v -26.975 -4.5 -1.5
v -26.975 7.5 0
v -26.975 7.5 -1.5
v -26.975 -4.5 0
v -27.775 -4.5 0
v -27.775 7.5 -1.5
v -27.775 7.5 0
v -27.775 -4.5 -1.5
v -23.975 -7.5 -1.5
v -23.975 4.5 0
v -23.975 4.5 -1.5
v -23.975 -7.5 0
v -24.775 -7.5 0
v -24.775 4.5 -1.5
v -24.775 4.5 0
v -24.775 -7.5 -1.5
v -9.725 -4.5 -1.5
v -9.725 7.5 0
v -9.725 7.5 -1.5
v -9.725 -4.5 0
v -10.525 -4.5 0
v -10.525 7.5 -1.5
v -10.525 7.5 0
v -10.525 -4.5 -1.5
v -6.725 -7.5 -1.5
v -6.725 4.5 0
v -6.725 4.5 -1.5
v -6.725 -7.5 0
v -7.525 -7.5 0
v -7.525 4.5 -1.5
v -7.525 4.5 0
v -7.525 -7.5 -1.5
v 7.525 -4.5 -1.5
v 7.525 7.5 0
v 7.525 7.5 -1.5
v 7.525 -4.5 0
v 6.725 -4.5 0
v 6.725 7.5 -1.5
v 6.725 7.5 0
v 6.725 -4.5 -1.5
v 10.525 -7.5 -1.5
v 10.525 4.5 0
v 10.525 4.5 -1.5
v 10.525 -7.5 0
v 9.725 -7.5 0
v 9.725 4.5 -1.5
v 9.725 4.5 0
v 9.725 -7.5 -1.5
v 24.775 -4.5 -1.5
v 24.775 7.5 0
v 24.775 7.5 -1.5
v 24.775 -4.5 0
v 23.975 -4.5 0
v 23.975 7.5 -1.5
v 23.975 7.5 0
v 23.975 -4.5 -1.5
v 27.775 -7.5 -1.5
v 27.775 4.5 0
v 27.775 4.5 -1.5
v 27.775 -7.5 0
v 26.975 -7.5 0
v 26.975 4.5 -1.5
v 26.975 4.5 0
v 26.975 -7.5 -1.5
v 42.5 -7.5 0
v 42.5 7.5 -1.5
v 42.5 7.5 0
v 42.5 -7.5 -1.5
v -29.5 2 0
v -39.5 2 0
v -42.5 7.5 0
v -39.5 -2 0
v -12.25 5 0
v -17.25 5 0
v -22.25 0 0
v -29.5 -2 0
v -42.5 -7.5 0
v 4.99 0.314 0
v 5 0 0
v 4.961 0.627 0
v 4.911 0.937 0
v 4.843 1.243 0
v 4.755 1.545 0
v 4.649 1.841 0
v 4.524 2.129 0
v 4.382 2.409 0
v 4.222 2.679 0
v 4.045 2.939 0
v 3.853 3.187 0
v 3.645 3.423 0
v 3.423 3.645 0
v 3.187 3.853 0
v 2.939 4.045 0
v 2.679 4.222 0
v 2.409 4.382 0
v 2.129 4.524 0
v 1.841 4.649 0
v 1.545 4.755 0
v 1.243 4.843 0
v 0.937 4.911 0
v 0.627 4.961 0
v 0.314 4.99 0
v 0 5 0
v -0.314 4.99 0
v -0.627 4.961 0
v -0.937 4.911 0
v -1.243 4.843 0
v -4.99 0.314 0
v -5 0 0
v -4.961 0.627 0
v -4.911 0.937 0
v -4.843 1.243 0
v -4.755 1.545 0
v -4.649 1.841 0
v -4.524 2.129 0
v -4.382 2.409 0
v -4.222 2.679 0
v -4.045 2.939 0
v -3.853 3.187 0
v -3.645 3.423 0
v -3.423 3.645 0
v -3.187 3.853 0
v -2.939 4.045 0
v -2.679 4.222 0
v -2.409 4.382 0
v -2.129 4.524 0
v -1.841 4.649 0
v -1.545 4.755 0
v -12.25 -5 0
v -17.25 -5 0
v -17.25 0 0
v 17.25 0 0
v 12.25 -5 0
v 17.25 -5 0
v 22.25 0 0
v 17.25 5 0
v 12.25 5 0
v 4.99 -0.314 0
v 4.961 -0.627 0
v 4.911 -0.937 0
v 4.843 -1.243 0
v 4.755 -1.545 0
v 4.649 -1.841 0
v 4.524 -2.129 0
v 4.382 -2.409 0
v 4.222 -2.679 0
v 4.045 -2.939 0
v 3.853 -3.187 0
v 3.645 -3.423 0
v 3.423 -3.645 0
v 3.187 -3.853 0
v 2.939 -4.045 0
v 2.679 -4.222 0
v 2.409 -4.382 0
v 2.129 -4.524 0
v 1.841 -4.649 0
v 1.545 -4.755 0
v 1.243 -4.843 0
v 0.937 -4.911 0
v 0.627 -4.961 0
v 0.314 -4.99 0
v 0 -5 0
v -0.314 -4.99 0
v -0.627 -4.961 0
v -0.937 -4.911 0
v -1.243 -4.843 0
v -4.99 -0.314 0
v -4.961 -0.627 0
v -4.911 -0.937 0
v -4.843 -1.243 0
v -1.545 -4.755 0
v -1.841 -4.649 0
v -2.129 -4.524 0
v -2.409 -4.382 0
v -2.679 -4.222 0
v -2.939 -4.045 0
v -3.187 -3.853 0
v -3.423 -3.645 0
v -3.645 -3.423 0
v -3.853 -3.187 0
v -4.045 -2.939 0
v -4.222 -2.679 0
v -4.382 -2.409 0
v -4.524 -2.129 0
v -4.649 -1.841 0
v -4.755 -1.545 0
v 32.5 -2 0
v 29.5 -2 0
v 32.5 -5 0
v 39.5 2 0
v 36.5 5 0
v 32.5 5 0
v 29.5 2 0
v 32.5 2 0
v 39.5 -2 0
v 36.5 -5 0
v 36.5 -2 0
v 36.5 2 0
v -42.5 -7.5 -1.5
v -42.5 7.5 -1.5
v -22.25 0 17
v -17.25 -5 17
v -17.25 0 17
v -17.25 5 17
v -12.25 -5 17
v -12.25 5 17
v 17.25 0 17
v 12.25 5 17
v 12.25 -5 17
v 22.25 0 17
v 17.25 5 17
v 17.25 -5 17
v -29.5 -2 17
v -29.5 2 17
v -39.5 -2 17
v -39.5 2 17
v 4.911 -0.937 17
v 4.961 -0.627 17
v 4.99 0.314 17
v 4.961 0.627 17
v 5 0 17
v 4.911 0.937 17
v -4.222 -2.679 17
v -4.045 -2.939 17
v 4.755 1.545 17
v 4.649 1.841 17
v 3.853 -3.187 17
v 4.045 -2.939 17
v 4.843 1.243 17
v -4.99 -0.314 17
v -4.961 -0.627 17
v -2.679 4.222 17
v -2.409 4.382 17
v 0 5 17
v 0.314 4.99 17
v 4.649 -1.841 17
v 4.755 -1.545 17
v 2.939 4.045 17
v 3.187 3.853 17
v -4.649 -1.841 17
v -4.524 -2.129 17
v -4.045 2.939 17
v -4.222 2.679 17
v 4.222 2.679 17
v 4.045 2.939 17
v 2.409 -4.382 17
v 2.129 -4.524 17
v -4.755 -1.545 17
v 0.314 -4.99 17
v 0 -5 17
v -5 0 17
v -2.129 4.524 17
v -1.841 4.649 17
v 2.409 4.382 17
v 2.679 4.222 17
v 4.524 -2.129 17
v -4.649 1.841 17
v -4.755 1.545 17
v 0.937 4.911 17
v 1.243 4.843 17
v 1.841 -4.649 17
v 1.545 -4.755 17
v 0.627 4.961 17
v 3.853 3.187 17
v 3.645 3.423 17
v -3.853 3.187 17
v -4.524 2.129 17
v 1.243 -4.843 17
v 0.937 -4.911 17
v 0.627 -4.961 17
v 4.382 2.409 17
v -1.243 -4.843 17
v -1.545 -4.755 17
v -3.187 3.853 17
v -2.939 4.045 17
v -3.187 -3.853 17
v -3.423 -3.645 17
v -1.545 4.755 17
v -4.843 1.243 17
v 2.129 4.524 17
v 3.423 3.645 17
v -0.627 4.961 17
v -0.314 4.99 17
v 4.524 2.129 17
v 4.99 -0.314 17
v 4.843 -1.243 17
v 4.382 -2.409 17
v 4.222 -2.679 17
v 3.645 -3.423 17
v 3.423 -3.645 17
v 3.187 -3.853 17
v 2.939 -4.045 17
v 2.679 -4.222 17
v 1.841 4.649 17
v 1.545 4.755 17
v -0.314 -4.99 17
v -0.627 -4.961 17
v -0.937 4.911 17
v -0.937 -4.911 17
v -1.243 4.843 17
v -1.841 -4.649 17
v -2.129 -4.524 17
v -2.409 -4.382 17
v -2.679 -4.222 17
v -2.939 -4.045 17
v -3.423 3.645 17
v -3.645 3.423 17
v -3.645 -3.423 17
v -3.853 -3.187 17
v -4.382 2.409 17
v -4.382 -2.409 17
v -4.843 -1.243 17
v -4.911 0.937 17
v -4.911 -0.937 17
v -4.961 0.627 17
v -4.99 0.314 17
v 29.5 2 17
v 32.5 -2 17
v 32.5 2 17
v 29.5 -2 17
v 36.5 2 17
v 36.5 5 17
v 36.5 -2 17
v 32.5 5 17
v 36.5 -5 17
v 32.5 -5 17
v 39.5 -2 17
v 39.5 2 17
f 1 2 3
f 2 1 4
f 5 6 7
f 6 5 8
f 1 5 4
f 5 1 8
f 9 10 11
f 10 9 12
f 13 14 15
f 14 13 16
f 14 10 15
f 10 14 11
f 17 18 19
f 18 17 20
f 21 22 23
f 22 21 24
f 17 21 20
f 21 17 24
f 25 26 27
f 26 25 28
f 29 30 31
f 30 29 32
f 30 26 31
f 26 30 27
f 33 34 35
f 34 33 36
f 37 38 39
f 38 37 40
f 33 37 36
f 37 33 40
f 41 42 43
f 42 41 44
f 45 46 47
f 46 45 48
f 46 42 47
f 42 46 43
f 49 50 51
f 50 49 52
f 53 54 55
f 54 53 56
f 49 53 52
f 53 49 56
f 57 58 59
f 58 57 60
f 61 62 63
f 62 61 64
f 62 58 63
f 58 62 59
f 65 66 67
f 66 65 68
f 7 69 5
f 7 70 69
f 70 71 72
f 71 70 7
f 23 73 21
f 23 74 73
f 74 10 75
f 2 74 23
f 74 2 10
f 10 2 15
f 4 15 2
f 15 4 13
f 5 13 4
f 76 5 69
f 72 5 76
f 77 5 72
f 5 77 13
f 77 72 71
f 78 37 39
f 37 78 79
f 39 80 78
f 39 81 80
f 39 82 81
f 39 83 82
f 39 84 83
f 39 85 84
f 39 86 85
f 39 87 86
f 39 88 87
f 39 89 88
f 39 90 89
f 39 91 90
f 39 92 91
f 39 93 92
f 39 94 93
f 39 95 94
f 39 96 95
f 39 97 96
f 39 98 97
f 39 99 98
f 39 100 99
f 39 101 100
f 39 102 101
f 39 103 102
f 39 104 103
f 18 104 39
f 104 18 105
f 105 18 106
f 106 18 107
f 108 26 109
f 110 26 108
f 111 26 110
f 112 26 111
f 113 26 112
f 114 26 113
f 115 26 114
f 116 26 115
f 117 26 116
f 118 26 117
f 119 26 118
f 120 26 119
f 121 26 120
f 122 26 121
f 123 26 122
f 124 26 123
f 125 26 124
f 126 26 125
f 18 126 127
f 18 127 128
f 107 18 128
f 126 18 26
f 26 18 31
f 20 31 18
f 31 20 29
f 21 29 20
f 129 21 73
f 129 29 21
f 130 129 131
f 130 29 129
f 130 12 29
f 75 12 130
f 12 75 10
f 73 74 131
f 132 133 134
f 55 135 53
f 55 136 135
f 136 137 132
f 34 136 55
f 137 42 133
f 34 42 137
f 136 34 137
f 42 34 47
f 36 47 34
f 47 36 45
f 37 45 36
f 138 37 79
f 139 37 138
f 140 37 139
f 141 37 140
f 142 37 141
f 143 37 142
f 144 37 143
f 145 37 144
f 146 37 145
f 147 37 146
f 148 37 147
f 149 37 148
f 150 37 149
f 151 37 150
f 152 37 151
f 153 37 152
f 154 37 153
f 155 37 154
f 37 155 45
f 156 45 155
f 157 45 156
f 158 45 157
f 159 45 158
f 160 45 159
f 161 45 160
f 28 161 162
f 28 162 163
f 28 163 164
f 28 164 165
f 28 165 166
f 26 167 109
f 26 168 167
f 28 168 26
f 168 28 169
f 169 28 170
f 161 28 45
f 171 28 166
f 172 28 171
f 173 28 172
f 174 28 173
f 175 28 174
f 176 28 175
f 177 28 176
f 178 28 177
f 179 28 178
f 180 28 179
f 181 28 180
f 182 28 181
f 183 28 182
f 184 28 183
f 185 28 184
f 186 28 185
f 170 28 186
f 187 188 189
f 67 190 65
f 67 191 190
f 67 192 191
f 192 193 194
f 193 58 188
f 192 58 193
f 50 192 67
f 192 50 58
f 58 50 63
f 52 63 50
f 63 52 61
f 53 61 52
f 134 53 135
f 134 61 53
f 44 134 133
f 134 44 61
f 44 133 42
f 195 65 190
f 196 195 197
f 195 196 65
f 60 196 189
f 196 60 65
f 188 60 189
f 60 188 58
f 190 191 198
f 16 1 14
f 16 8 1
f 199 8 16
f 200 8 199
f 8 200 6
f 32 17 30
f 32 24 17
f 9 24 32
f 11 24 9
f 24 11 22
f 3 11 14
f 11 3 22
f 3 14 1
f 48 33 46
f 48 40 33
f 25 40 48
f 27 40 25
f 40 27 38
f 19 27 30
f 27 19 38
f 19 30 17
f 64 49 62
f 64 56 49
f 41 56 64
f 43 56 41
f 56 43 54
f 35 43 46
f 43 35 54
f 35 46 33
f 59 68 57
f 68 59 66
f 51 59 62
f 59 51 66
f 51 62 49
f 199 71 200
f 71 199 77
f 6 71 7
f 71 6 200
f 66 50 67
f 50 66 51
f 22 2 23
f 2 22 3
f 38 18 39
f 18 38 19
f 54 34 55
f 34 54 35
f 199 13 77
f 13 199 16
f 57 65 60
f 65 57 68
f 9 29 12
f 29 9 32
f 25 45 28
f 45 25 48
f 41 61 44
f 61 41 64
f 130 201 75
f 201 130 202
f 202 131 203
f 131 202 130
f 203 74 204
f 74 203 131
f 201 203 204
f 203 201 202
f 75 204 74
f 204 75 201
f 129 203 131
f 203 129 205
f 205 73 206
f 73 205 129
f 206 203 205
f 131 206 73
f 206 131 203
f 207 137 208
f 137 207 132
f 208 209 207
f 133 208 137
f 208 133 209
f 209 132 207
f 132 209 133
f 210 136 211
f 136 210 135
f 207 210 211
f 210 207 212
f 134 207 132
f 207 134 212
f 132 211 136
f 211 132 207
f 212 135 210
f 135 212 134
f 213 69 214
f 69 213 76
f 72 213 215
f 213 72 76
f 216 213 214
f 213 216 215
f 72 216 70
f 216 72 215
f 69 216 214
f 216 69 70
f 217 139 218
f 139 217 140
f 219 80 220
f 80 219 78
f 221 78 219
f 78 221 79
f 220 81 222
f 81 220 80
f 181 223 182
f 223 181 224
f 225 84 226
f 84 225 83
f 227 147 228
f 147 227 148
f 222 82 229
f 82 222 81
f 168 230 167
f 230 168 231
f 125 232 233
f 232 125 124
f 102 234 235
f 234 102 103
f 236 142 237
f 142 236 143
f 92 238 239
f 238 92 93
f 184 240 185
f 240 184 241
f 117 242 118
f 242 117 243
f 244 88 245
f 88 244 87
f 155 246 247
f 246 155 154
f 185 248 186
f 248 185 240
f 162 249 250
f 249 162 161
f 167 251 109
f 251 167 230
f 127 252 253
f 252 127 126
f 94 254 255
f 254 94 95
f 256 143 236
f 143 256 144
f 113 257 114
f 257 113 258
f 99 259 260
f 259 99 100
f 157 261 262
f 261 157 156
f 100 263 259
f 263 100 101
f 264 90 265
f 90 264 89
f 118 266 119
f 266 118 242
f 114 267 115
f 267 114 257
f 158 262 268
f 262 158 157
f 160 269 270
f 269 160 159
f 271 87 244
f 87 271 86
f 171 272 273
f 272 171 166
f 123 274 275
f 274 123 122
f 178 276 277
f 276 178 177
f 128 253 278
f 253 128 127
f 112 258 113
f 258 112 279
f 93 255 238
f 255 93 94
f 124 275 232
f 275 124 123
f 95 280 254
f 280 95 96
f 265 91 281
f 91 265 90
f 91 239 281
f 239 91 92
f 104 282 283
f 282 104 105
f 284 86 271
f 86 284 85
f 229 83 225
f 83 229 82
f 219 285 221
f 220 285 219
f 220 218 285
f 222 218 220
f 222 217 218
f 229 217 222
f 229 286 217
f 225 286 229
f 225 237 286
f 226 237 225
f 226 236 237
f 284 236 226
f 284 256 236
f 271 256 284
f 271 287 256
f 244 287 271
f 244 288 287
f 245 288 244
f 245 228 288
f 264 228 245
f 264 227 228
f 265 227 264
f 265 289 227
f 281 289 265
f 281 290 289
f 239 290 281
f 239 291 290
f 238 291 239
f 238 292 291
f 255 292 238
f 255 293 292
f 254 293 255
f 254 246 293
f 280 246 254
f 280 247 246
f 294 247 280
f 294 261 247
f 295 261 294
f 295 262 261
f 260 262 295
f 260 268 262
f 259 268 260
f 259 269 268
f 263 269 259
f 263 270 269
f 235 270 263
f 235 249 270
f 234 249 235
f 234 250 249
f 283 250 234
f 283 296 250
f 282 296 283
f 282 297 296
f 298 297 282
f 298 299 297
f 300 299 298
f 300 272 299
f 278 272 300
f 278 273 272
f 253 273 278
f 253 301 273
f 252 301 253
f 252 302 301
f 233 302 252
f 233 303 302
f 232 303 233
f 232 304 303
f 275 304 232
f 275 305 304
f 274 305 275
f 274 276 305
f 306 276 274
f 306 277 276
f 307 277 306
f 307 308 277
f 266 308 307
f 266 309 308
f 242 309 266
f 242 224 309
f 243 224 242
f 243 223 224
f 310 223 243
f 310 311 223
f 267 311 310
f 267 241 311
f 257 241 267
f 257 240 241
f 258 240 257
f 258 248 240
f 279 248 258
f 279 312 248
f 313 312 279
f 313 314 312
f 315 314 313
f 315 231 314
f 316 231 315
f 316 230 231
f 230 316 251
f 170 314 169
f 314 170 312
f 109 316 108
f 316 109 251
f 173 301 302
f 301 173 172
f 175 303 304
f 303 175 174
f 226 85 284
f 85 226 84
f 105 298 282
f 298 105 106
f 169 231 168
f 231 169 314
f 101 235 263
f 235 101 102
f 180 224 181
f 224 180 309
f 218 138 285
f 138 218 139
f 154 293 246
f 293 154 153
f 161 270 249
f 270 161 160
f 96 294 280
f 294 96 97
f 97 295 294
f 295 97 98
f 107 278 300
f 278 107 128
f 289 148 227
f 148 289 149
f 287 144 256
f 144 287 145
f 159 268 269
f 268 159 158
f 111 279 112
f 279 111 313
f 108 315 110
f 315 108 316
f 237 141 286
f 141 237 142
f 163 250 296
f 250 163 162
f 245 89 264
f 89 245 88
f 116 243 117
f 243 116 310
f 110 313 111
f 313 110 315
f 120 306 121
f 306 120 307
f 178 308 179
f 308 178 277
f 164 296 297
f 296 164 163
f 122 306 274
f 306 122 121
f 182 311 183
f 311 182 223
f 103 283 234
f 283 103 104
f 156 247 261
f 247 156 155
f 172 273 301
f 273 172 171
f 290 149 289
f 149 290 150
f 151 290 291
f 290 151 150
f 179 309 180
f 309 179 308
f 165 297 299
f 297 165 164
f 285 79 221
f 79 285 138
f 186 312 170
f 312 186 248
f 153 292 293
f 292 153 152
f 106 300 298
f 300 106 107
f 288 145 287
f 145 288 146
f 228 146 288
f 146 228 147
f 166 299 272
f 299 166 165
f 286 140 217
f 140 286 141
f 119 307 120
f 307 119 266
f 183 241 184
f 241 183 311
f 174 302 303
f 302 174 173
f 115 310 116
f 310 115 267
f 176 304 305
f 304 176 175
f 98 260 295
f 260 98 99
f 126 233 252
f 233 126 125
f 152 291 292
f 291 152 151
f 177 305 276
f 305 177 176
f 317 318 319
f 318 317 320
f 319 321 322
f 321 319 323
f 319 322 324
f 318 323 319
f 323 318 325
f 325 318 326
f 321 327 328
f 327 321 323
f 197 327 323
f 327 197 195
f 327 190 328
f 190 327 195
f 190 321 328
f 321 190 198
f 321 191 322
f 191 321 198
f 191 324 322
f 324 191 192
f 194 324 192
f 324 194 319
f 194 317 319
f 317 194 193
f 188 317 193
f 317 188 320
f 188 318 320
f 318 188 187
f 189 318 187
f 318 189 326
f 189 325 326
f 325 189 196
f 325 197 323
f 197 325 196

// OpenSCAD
width = 85;
height = 15;

$fn=100;

pl = 1.5; // stärke grundplatte

bd = 17; // button depth

dx = 17.25; // knopfabstand
difference() {
    translate([-width/2,-height/2,-pl]) cube([width,height,pl]);
    for(i=[-1.5:1:1.5]) {
    translate([dx*i-1.5,3,0]) cube([0.8,15,5], true);
    translate([dx*i+1.5,-3,0]) cube([0.8,15,5], true);
    }
}

translate([-dx*2,0,0]) button1();
translate([-dx*1,0,0]) button2();
button3();
translate([dx*1,0,0]) button4();
translate([dx*2,0,0]) button5();

module button1() {
    translate([0,0,0]) linear_extrude(bd) polygon([[-5,2],[5,2],[5,-2],[-5,-2]]);
    } 

module button2() {
    translate([-5,0,0]) linear_extrude(bd) polygon([[0,0],[5,5],[5,-5]]);
    translate([0,0,0]) linear_extrude(bd) polygon([[0,0],[5,5],[5,-5]]);
} 

module button3() {
    cylinder(bd,5,5);
} 

module button4() {
    translate([0,0,0]) linear_extrude(bd) rotate(180) polygon([[0,0],[5,5],[5,-5]]);
    translate([5,0,0]) linear_extrude(bd) rotate(180) polygon([[0,0],[5,5],[5,-5]]);
} 

module button5() {
    translate([0,0,0]) linear_extrude(bd) polygon([[-5,2],[-2,2],[-2,5],[2,5],[2,2],[5,2],[5,-2],[2,-2],[2,-5],[-2,-5],[-2,-2],[-5,-2]]);
} 
